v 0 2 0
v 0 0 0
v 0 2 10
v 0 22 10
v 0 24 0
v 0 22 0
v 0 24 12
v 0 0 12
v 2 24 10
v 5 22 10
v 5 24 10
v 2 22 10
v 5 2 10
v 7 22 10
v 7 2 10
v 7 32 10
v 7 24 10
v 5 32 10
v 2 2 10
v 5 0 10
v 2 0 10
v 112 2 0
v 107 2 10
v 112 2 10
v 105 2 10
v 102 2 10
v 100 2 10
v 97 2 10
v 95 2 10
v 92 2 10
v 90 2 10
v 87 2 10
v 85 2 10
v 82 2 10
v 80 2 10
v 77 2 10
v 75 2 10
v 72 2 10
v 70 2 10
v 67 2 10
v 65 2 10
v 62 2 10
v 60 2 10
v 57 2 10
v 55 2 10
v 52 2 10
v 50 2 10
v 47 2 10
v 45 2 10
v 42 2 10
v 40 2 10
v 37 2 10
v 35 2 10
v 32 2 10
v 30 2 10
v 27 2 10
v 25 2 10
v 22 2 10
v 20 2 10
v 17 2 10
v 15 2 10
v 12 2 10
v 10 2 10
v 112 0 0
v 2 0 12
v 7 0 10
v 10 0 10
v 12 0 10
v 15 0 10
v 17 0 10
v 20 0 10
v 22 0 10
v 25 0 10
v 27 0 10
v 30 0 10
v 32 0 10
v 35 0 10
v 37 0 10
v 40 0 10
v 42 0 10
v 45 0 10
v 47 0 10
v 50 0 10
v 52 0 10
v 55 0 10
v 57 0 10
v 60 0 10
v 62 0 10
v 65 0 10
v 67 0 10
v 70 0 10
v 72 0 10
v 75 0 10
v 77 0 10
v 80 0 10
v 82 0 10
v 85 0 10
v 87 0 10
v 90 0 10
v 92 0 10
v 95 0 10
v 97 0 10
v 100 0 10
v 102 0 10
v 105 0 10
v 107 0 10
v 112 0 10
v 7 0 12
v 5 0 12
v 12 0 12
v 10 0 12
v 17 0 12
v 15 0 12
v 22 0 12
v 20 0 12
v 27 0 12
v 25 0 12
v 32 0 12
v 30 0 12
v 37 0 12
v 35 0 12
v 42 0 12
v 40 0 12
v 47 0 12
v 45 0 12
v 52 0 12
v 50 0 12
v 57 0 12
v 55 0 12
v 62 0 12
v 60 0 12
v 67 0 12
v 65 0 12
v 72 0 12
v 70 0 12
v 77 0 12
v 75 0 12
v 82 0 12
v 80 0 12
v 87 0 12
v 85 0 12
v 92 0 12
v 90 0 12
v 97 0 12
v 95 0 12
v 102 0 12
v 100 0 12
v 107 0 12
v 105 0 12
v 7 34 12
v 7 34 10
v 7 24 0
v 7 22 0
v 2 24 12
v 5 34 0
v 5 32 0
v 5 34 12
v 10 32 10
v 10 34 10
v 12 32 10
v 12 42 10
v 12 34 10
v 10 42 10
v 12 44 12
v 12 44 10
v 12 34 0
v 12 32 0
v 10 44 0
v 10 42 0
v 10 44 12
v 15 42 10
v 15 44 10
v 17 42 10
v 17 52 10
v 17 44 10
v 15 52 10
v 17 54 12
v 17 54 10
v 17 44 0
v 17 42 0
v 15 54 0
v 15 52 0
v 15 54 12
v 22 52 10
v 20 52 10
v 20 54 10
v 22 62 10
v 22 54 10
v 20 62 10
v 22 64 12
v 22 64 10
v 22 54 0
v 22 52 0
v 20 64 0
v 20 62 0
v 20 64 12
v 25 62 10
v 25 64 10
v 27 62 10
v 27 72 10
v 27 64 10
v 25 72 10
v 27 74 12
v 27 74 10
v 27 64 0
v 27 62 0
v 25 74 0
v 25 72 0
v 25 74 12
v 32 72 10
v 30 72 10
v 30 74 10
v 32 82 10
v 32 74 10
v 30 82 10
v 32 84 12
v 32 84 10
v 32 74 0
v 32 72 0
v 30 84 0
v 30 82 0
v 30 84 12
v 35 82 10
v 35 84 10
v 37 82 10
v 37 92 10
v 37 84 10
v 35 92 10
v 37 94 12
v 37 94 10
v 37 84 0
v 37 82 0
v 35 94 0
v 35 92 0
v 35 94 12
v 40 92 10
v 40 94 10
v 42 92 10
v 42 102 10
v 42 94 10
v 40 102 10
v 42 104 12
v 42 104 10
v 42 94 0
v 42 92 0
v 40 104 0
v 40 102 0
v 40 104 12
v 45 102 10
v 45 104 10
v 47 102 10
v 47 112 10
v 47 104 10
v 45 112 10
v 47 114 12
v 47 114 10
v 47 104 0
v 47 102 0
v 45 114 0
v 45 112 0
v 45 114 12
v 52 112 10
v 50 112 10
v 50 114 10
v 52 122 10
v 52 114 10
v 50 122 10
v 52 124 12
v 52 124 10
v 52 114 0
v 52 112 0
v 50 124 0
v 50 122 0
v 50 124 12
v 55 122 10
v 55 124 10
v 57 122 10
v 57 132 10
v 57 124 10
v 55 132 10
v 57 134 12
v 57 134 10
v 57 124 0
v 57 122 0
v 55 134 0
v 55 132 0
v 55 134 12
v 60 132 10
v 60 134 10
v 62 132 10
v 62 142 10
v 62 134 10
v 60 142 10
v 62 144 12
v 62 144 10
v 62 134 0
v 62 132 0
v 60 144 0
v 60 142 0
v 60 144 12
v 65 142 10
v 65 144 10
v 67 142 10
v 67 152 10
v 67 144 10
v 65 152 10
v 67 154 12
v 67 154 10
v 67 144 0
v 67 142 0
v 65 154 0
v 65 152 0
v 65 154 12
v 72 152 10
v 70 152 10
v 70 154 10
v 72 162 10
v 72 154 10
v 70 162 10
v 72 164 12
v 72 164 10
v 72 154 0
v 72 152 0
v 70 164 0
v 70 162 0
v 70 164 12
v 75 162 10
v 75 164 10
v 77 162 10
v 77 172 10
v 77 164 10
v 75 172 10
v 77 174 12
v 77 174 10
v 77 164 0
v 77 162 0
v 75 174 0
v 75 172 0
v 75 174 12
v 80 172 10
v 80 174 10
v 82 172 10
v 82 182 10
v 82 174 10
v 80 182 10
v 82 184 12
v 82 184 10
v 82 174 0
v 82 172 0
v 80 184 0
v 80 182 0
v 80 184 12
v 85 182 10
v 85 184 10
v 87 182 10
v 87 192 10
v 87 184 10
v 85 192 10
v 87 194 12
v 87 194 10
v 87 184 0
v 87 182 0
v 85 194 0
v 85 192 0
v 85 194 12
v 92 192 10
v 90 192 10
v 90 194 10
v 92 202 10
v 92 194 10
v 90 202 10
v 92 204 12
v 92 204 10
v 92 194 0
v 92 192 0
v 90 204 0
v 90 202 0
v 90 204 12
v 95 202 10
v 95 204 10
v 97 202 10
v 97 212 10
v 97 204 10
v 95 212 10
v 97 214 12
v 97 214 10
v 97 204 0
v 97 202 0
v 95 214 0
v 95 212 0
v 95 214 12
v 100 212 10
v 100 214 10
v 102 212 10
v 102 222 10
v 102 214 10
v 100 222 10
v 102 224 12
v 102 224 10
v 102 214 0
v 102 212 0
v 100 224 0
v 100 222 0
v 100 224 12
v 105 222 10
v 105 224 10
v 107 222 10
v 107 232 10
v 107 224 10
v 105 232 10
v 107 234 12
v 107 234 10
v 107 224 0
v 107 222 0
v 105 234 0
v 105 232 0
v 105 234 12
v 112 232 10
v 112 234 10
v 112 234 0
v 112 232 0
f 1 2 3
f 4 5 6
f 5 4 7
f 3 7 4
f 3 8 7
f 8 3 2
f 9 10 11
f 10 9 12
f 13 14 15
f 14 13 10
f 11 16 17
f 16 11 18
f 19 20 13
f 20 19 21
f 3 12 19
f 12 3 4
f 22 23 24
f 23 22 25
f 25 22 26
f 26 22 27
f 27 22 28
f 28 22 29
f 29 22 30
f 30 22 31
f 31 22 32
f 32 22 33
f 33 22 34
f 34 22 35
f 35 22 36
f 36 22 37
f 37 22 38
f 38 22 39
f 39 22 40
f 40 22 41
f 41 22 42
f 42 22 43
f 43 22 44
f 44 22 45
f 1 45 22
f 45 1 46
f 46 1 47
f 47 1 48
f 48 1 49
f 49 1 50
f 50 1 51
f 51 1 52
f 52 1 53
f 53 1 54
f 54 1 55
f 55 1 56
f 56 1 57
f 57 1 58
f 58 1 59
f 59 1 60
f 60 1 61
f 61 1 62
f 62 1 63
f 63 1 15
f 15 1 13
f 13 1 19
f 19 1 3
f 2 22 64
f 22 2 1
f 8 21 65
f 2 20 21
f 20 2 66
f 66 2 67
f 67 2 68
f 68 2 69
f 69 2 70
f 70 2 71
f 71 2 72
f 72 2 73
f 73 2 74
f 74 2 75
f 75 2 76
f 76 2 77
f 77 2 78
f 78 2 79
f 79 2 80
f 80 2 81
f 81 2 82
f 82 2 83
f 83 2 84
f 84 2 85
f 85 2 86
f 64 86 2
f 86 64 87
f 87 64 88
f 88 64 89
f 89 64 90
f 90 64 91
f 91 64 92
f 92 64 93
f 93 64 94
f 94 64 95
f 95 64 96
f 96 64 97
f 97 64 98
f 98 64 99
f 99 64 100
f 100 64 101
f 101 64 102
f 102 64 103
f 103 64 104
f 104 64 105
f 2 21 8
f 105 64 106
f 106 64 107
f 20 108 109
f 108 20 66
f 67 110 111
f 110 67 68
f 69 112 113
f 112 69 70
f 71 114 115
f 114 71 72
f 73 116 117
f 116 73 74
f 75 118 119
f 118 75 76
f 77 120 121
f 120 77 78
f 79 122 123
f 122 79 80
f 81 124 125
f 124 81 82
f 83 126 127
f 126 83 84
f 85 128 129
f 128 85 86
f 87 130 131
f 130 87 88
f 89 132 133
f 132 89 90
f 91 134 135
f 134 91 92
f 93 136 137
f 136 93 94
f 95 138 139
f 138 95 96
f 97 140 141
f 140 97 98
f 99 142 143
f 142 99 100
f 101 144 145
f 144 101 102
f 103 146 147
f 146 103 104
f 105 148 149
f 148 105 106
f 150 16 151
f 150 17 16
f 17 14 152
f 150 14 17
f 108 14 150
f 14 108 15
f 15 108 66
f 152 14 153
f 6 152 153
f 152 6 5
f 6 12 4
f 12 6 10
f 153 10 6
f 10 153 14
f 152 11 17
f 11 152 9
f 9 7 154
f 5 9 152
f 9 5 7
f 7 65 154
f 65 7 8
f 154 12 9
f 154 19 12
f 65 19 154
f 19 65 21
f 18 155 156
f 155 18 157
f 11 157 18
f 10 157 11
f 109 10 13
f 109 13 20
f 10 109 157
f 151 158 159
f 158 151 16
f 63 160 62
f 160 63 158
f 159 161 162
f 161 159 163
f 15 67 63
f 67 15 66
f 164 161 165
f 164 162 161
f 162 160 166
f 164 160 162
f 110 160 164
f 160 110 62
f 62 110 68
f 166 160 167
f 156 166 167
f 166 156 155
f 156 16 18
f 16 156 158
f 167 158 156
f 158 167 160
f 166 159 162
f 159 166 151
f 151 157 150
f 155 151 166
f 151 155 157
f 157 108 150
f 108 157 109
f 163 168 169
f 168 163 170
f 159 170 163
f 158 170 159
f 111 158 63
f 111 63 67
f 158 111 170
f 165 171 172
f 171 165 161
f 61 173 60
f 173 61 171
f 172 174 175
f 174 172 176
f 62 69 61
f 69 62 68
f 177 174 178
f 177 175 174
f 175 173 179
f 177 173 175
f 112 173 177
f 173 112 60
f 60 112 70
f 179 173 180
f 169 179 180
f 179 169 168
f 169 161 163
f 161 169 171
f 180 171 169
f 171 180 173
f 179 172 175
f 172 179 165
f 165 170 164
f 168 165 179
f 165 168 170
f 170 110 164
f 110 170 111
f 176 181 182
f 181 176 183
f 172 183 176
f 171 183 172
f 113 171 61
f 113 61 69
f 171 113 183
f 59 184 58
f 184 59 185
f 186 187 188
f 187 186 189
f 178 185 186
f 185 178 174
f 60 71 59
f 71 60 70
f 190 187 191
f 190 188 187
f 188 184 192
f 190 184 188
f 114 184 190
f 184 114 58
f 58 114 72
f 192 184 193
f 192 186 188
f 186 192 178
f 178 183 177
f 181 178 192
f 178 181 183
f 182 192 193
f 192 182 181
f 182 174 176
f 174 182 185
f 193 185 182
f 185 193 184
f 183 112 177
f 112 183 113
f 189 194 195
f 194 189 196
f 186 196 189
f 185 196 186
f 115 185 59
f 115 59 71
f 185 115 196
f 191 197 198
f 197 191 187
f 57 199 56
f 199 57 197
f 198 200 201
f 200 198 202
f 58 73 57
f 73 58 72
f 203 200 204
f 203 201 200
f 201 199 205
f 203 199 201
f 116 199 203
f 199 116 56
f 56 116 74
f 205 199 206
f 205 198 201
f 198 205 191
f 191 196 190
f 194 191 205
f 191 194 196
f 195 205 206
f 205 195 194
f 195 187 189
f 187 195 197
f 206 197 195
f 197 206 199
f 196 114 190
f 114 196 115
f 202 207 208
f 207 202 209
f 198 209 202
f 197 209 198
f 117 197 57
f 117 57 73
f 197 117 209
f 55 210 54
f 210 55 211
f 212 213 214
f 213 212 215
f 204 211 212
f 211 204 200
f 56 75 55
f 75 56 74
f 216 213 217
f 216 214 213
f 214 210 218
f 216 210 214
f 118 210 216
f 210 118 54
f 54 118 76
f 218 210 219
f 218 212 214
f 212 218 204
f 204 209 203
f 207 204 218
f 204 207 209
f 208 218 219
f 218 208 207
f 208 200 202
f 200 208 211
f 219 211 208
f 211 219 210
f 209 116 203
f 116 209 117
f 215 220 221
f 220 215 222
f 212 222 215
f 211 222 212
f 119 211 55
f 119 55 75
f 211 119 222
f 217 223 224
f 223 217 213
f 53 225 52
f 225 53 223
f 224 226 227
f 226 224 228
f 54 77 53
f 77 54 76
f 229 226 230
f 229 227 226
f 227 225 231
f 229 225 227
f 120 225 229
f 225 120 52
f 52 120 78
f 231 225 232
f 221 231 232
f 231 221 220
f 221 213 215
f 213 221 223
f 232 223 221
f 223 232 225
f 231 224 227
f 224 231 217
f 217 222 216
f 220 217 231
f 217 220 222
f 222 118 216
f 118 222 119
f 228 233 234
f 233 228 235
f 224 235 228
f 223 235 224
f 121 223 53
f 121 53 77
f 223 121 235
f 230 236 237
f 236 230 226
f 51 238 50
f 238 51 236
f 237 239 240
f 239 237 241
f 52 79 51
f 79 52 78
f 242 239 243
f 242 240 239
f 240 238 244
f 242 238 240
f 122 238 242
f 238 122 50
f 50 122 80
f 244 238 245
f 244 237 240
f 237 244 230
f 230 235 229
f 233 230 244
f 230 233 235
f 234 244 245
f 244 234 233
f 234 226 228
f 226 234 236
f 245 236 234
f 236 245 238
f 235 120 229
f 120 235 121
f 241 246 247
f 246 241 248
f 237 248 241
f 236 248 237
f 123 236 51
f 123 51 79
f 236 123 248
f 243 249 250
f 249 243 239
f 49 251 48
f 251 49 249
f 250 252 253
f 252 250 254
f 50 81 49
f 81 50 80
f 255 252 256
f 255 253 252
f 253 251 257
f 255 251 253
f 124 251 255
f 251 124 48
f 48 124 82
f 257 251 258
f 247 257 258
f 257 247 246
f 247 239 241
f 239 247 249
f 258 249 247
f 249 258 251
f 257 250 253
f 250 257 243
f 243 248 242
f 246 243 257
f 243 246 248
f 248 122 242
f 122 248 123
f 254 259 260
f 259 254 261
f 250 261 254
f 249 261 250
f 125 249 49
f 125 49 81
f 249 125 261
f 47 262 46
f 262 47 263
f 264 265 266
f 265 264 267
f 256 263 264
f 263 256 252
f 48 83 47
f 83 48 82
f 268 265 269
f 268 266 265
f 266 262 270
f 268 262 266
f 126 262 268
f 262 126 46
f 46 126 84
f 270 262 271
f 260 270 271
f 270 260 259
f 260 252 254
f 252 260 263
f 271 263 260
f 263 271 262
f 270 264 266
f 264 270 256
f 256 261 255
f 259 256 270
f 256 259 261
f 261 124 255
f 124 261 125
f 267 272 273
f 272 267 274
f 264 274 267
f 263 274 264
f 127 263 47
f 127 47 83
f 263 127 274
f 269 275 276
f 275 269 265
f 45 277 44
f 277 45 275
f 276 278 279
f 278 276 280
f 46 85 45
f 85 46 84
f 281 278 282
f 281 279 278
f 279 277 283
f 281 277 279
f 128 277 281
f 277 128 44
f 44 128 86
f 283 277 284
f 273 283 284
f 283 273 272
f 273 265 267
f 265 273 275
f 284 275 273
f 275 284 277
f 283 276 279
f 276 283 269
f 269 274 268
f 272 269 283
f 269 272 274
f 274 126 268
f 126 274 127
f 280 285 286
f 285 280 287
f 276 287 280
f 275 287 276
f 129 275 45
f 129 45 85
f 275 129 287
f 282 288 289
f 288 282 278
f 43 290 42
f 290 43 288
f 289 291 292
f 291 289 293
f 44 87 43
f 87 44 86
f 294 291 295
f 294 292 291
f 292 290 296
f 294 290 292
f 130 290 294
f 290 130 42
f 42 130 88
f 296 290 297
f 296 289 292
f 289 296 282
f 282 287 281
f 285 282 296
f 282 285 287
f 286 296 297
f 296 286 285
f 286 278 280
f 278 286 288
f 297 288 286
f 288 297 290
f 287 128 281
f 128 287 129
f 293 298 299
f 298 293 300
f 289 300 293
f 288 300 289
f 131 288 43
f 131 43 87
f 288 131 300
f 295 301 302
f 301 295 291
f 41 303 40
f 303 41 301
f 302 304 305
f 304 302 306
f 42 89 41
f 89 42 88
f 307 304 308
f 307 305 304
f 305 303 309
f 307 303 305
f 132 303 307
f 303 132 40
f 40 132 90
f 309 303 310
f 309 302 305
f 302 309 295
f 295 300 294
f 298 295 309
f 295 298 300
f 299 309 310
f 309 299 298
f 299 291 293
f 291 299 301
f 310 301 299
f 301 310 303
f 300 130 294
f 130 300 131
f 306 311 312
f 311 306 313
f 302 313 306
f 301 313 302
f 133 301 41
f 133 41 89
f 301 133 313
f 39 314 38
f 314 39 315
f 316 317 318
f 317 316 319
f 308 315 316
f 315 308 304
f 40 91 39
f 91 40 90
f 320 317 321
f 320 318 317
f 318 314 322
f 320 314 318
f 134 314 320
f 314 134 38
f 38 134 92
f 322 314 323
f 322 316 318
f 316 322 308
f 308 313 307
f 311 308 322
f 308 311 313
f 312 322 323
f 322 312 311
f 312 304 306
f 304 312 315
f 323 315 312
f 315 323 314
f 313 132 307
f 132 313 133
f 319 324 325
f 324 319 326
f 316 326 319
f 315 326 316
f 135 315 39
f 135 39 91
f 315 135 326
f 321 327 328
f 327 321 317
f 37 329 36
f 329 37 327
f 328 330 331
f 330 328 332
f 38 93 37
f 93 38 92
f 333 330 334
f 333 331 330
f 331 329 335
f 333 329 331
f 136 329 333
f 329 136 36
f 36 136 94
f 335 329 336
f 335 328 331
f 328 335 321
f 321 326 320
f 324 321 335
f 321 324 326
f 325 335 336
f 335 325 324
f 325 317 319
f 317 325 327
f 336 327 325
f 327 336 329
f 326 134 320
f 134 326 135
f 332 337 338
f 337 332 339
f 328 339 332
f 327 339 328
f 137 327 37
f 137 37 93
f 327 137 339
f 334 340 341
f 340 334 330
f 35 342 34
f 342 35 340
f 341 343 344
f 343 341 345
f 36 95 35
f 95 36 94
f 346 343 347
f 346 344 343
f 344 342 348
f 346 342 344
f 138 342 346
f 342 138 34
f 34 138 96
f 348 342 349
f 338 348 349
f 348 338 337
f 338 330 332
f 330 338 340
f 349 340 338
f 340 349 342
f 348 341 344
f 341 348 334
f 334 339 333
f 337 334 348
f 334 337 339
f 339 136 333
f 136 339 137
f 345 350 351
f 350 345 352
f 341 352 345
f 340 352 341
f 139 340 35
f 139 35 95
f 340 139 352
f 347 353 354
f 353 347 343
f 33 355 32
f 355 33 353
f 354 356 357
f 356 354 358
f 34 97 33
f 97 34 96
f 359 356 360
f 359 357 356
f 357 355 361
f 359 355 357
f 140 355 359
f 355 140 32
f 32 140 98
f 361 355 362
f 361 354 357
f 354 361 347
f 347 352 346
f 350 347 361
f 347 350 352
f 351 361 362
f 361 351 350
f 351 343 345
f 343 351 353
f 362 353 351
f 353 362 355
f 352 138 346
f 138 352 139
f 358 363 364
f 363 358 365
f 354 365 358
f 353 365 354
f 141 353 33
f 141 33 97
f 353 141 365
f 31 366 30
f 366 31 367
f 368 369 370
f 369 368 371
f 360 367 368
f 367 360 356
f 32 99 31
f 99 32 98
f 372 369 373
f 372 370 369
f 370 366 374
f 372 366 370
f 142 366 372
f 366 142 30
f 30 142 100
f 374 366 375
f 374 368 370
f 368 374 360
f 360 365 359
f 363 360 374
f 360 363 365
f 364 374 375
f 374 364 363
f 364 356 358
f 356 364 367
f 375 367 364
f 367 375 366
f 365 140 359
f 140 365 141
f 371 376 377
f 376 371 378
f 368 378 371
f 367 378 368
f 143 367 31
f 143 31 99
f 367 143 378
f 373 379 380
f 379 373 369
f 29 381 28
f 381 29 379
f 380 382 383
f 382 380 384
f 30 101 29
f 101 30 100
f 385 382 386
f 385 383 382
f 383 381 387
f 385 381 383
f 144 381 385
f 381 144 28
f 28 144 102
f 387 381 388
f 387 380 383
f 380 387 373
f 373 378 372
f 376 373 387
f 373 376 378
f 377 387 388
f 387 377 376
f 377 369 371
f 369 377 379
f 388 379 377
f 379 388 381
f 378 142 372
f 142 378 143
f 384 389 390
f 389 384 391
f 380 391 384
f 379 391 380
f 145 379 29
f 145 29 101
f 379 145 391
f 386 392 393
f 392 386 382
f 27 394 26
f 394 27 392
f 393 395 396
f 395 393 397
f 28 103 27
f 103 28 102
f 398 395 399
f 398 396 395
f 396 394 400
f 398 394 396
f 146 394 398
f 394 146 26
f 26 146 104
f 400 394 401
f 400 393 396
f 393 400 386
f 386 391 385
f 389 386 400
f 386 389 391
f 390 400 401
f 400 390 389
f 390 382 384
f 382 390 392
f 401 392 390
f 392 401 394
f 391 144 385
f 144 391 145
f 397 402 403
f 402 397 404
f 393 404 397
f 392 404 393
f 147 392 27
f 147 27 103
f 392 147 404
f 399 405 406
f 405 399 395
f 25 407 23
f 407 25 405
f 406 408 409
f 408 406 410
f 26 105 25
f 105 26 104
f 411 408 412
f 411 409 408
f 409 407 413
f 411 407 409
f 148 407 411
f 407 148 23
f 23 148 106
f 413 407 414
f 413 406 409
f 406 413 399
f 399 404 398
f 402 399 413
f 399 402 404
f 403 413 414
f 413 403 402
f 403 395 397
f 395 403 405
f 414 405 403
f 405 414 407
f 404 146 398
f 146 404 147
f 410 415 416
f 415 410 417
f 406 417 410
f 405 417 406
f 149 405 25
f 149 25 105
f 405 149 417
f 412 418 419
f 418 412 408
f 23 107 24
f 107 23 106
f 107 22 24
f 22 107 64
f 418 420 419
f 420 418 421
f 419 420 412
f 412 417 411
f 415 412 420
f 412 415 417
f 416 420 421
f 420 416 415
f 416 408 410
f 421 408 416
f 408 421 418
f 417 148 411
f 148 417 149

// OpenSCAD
/* Brief */
// Test of the maximal length of unsupported bridge
// result longest bridge.
/* Config */
// volba pohladu
preview="plate";    // [plate]
// hrubka stlpikov a mosta
tick=2;             // [0.5:0.1:4]
// skok-Y testu dlzky mosta
steplen=10;         // [1:1:30]
// skok-X odstupu dvoch mostov vedla seba
steppos=5;
// minimalna dlzka mosta
minlen=20;          // [20:5:100]
// pocet mostov
steps=21;           // [1:1:21]
/* Colors */
colorBridge="#a0a0a0";

module unsupportedBridge(length=20,tick=2) {
    // length - the length of unsupported bridge
    // tick   - tickness of bridge
    hight = 10;
    color(colorBridge) union() {
        translate([0,0,0])              // predny stlpik -vychodzi - staticky
            cube([steppos+tick,tick,hight]);
        translate([0,tick+length,0])    // zadny stlpik -cielovy - dynamicky
            cube([steppos+tick,tick,hight]);
        translate([0,0,hight])          // bridge - spojnica oboch stlpikov - so svetlou dlzkou = length
            cube([tick,tick+length+tick,tick]);
        echo(str("length=",length));
    }
}

/* Preview */
if(preview=="plate") {
    for(i=[0:1:steps]) {
        translate([i*steppos,0,0])
        unsupportedBridge(minlen+i*steplen,tick);
    }
}
